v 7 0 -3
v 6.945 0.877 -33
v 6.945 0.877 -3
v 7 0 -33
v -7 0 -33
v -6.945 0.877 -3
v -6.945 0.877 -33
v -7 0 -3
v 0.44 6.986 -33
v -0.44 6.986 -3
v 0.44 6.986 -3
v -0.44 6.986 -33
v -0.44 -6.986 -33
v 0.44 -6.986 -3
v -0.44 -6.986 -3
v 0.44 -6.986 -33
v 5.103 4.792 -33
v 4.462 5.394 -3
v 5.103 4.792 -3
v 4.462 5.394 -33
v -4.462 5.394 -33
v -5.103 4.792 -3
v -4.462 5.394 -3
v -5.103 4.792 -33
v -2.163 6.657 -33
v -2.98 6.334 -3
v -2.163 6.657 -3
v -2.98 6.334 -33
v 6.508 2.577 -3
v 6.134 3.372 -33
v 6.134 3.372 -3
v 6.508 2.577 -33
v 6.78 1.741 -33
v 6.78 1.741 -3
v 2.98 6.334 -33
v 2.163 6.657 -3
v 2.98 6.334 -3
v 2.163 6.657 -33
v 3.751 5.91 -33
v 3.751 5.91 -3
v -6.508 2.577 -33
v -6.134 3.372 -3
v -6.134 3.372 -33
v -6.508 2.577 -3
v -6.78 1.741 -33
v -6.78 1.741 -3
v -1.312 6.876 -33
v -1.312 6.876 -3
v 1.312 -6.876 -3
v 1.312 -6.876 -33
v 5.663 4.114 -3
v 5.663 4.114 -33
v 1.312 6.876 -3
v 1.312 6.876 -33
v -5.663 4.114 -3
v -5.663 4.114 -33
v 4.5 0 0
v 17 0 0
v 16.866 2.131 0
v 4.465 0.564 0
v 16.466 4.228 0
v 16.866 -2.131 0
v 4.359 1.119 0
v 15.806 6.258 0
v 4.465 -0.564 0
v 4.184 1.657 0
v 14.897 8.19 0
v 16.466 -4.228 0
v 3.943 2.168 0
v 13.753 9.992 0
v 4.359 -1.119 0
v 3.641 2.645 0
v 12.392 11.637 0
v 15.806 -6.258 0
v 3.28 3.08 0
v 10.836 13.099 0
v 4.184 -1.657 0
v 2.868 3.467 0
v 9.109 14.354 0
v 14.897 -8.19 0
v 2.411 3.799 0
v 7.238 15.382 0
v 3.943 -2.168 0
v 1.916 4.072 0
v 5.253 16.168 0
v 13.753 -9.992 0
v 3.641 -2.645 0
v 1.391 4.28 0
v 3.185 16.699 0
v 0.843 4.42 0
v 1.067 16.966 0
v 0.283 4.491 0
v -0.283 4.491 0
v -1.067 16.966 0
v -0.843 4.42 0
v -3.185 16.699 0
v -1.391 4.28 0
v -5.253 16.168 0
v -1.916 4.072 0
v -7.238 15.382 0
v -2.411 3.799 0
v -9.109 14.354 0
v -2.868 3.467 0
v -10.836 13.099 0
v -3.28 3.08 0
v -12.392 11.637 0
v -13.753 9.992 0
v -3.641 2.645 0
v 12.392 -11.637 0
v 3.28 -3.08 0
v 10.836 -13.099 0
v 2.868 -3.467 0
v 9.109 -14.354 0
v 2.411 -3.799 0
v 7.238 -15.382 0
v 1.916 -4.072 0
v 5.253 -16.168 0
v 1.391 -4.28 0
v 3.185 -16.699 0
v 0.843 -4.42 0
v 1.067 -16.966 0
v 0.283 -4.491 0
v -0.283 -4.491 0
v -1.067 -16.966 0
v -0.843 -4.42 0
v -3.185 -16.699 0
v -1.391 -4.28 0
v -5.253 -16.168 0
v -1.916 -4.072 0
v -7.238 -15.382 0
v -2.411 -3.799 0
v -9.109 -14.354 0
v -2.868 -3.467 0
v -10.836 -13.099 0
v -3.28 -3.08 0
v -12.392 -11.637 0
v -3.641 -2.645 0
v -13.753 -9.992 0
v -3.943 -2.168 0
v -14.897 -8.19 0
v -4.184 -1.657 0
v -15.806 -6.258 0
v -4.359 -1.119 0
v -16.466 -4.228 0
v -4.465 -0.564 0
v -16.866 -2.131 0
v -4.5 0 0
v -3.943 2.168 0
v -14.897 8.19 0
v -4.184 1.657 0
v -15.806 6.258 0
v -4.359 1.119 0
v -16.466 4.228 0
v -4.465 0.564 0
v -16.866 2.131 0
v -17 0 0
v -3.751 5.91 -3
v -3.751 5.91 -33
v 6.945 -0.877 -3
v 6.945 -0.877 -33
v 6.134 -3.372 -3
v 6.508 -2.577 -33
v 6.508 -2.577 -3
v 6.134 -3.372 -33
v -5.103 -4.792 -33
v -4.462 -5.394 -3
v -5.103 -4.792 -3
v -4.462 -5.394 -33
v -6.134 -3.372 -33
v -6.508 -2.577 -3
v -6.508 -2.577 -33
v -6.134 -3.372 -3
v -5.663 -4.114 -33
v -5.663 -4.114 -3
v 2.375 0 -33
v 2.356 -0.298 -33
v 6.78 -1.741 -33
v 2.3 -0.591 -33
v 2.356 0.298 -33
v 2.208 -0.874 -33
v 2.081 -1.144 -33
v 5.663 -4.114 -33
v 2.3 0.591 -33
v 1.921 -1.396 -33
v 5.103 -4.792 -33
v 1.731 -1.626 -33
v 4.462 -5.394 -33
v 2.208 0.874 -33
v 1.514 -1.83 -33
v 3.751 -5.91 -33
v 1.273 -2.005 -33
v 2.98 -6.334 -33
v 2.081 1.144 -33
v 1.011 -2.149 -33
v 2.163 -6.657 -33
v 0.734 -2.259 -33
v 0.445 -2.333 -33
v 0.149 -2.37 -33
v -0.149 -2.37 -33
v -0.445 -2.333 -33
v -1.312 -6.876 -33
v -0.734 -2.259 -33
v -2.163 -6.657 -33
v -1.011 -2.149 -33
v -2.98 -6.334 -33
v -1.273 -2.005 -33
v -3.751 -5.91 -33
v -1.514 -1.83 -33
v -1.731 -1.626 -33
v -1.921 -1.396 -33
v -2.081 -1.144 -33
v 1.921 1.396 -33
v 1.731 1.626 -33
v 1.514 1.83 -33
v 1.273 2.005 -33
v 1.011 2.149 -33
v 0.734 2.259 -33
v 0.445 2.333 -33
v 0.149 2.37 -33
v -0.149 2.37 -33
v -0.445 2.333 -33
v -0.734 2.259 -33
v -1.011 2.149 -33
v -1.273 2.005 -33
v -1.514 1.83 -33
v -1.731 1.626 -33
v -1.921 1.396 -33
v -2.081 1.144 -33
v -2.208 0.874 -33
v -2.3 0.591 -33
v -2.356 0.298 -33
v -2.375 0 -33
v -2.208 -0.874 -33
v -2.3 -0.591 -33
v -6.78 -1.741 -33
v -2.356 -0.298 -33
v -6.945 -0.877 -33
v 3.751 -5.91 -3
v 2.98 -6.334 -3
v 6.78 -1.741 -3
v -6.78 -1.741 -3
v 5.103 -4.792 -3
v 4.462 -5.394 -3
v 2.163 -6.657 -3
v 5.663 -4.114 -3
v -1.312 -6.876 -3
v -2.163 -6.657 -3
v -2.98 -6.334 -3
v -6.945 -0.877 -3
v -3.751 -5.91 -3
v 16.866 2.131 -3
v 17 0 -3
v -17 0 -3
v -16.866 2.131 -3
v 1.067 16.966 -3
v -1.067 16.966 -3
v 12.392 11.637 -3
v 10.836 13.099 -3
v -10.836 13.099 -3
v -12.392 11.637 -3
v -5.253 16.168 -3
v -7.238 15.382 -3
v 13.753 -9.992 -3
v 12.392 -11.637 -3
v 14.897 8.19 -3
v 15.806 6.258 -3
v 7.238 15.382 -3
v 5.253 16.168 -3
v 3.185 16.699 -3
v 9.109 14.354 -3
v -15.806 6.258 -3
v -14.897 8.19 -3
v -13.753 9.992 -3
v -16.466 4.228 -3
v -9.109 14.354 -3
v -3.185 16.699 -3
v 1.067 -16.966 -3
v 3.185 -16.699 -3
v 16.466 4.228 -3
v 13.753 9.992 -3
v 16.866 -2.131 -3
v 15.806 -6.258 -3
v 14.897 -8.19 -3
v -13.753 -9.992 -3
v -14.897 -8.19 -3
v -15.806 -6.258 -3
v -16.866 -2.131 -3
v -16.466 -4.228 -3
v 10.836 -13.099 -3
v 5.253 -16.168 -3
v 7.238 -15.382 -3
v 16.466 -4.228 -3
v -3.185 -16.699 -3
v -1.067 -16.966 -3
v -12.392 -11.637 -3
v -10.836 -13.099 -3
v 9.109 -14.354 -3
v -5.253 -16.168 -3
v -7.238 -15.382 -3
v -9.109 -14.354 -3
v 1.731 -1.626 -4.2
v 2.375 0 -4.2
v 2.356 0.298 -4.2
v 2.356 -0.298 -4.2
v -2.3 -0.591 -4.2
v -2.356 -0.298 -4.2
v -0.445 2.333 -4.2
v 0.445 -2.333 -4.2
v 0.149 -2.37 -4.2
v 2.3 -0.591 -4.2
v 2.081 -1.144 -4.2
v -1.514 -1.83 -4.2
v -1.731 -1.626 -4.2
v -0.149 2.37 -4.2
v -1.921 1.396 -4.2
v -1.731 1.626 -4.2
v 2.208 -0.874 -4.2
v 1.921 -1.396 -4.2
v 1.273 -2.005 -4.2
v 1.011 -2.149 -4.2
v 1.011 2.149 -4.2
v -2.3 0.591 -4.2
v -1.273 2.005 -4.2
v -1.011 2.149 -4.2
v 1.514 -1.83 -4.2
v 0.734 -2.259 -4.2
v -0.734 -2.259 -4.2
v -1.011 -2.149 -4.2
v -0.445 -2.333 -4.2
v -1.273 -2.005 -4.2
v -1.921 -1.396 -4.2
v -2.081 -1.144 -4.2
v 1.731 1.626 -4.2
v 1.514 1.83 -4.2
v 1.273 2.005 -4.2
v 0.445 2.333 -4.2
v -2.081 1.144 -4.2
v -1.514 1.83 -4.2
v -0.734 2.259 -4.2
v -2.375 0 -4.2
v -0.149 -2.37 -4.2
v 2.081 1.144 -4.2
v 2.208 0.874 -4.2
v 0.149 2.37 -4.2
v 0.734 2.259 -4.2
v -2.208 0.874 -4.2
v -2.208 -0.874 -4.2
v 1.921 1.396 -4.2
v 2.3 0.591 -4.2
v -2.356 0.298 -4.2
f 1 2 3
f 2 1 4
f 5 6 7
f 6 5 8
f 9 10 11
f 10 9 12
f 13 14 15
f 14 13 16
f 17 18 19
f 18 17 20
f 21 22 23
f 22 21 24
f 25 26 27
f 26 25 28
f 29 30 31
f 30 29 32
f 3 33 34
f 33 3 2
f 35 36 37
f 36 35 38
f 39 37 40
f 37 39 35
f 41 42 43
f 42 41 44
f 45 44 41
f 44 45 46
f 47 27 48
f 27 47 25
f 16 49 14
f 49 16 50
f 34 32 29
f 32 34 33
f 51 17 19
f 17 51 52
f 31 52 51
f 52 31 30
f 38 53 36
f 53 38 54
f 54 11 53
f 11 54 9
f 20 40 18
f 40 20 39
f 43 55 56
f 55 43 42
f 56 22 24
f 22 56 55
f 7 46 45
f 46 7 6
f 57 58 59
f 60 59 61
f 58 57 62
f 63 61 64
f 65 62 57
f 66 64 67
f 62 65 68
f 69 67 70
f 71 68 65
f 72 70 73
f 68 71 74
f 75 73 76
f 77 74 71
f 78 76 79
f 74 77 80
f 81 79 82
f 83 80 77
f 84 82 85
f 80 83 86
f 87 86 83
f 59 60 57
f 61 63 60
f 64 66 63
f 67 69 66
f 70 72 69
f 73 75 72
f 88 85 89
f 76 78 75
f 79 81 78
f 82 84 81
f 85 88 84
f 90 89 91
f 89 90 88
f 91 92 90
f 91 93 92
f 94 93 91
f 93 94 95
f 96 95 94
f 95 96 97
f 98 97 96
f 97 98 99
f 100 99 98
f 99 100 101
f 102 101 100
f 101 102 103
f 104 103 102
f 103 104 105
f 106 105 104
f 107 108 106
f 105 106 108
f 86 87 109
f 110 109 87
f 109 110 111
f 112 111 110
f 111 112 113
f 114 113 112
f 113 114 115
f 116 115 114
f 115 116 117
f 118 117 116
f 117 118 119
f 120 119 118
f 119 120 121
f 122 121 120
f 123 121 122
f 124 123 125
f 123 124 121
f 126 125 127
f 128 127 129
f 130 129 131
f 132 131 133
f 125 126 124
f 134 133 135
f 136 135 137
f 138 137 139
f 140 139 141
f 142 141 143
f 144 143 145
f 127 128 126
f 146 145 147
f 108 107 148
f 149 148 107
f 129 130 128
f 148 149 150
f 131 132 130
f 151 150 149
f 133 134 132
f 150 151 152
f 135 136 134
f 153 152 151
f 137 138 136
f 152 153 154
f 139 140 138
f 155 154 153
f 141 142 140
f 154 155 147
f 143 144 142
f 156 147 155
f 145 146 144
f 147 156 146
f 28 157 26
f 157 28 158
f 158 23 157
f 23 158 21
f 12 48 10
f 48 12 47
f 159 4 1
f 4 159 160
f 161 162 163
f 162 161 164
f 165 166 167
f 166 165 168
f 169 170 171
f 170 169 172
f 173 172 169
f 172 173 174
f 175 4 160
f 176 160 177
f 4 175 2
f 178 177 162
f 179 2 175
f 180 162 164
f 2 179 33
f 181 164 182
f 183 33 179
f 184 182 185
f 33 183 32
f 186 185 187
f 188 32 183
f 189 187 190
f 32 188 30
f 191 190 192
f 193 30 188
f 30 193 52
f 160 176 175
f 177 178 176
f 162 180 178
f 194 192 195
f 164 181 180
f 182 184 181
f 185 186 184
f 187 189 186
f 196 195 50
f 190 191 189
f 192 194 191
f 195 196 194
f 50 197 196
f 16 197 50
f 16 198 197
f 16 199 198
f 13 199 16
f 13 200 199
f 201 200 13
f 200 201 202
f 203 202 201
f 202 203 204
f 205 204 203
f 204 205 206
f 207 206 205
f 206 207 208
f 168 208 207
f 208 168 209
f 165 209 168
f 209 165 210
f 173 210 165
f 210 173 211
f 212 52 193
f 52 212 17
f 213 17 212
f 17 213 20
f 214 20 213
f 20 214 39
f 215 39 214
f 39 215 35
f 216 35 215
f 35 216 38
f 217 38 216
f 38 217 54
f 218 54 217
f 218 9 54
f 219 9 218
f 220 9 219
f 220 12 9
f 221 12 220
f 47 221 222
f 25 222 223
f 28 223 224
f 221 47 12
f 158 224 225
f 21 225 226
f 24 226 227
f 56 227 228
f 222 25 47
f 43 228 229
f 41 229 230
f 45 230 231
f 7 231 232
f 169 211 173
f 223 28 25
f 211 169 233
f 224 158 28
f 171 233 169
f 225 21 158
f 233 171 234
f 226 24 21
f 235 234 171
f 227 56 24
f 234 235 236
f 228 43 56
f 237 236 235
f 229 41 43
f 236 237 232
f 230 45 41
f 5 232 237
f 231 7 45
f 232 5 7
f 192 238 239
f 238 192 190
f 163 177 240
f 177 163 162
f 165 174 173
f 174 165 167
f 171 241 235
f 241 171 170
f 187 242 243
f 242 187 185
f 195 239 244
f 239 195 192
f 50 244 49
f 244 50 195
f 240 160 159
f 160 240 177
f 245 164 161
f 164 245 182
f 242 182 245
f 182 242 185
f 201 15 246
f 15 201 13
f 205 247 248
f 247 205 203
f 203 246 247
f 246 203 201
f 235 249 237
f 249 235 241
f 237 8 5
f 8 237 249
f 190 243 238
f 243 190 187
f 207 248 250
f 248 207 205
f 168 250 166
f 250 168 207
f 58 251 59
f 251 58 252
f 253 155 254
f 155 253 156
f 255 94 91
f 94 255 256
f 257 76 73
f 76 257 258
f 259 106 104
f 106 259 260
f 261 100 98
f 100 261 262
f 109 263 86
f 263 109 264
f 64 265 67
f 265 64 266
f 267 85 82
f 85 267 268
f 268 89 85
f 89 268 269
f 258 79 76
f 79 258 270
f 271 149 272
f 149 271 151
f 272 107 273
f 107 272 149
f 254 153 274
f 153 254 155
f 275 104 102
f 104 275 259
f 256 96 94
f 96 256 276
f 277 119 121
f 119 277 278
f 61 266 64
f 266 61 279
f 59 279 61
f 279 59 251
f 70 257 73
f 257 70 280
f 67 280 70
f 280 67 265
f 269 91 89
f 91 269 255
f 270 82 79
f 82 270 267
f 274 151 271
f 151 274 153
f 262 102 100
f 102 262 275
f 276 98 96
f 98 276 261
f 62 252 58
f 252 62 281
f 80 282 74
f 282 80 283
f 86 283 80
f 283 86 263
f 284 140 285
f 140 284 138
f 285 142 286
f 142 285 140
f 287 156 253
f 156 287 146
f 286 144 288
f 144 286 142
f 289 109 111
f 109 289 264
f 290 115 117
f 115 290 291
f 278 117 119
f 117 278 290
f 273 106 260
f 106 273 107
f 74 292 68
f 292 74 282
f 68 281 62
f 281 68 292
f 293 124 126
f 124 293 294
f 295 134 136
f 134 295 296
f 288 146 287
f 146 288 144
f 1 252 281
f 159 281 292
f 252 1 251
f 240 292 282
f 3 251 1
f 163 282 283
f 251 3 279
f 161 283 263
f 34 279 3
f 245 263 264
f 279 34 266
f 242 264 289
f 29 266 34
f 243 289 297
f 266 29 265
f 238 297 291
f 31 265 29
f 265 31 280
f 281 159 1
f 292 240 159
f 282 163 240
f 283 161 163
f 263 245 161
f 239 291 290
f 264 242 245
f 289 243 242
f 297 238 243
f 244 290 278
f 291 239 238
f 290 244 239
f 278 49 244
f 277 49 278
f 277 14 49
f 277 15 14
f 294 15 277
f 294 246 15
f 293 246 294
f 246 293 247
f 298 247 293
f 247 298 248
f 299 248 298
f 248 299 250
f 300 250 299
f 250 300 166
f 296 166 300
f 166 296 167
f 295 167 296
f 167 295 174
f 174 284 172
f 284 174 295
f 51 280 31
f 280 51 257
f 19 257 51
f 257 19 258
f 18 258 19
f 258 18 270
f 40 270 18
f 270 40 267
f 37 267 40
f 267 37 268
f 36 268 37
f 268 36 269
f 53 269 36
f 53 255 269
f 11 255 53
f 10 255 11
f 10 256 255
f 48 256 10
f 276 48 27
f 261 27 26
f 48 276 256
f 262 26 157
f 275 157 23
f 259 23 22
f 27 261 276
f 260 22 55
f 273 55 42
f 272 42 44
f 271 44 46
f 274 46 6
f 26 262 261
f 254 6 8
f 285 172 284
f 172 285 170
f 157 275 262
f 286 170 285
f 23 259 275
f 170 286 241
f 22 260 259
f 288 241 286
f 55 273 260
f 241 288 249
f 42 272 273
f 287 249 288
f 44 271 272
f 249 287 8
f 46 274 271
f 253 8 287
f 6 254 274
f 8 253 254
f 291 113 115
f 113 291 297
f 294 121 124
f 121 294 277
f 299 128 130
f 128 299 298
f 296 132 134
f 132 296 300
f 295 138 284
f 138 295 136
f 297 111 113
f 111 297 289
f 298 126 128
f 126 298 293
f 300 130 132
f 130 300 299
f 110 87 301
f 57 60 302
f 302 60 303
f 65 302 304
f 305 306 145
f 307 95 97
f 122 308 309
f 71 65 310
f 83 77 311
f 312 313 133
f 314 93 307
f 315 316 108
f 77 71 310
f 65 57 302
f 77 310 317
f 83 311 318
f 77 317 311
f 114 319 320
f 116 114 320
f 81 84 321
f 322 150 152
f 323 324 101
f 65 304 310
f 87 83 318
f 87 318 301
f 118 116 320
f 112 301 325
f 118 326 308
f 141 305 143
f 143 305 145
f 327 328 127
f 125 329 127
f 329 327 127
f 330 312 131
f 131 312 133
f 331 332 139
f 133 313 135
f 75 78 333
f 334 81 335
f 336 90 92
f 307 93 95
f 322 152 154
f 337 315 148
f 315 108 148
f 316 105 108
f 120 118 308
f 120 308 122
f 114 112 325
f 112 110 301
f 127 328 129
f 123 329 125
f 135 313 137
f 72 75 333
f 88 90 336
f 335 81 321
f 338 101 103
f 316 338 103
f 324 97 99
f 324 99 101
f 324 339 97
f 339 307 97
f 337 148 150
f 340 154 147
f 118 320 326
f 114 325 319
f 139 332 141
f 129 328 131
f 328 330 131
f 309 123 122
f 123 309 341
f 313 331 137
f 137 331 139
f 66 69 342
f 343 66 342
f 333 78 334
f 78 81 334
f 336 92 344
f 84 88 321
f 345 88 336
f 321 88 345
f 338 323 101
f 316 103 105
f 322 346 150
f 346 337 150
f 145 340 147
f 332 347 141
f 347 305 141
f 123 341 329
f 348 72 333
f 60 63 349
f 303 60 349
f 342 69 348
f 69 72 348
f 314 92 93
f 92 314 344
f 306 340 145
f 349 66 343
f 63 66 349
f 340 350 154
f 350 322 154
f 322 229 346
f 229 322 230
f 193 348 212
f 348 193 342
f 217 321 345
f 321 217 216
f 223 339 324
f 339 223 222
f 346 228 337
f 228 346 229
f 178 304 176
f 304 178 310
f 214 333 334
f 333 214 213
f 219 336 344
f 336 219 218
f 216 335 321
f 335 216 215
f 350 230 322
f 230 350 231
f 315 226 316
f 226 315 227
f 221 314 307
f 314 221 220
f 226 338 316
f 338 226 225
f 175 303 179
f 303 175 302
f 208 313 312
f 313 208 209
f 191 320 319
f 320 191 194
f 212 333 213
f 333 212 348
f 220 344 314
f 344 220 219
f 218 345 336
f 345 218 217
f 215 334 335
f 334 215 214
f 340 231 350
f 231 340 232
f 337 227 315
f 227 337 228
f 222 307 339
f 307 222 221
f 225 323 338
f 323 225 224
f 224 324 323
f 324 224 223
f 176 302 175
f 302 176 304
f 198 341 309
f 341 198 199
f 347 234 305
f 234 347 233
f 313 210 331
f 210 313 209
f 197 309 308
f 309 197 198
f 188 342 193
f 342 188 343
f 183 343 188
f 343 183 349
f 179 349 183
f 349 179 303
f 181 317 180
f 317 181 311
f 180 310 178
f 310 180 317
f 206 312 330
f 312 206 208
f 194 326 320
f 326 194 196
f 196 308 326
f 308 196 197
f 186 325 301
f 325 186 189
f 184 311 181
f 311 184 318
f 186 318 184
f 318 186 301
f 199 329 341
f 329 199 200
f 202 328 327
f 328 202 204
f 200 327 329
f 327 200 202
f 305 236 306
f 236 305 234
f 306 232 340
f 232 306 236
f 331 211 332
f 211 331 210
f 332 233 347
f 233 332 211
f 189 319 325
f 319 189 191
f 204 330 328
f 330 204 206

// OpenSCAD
$fn = 50;


difference() {
	union() {
		translate(v = [0, 0, -33.0000000000]) {
			cylinder(h = 33, r = 7.0000000000);
		}
		translate(v = [0, 0, -3.0000000000]) {
			cylinder(h = 3, r = 17.0000000000);
		}
	}
	union() {
		translate(v = [0, 0, 0]) {
			rotate(a = [0, 0, 0]) {
				difference() {
					union() {
						#translate(v = [0, 0, -33.0000000000]) {
							cylinder(h = 33, r = 2.2500000000);
						}
						#translate(v = [0, 0, -4.2000000000]) {
							cylinder(h = 4.2000000000, r = 7.0000000000, r1 = 2.3750000000, r2 = 4.5000000000);
						}
						#translate(v = [0, 0, -33.0000000000]) {
							cylinder(h = 33, r = 2.3750000000);
						}
						#translate(v = [0, 0, -33.0000000000]) {
							cylinder(h = 33, r = 2.2500000000);
						}
					}
					union();
				}
			}
		}
	}
}
